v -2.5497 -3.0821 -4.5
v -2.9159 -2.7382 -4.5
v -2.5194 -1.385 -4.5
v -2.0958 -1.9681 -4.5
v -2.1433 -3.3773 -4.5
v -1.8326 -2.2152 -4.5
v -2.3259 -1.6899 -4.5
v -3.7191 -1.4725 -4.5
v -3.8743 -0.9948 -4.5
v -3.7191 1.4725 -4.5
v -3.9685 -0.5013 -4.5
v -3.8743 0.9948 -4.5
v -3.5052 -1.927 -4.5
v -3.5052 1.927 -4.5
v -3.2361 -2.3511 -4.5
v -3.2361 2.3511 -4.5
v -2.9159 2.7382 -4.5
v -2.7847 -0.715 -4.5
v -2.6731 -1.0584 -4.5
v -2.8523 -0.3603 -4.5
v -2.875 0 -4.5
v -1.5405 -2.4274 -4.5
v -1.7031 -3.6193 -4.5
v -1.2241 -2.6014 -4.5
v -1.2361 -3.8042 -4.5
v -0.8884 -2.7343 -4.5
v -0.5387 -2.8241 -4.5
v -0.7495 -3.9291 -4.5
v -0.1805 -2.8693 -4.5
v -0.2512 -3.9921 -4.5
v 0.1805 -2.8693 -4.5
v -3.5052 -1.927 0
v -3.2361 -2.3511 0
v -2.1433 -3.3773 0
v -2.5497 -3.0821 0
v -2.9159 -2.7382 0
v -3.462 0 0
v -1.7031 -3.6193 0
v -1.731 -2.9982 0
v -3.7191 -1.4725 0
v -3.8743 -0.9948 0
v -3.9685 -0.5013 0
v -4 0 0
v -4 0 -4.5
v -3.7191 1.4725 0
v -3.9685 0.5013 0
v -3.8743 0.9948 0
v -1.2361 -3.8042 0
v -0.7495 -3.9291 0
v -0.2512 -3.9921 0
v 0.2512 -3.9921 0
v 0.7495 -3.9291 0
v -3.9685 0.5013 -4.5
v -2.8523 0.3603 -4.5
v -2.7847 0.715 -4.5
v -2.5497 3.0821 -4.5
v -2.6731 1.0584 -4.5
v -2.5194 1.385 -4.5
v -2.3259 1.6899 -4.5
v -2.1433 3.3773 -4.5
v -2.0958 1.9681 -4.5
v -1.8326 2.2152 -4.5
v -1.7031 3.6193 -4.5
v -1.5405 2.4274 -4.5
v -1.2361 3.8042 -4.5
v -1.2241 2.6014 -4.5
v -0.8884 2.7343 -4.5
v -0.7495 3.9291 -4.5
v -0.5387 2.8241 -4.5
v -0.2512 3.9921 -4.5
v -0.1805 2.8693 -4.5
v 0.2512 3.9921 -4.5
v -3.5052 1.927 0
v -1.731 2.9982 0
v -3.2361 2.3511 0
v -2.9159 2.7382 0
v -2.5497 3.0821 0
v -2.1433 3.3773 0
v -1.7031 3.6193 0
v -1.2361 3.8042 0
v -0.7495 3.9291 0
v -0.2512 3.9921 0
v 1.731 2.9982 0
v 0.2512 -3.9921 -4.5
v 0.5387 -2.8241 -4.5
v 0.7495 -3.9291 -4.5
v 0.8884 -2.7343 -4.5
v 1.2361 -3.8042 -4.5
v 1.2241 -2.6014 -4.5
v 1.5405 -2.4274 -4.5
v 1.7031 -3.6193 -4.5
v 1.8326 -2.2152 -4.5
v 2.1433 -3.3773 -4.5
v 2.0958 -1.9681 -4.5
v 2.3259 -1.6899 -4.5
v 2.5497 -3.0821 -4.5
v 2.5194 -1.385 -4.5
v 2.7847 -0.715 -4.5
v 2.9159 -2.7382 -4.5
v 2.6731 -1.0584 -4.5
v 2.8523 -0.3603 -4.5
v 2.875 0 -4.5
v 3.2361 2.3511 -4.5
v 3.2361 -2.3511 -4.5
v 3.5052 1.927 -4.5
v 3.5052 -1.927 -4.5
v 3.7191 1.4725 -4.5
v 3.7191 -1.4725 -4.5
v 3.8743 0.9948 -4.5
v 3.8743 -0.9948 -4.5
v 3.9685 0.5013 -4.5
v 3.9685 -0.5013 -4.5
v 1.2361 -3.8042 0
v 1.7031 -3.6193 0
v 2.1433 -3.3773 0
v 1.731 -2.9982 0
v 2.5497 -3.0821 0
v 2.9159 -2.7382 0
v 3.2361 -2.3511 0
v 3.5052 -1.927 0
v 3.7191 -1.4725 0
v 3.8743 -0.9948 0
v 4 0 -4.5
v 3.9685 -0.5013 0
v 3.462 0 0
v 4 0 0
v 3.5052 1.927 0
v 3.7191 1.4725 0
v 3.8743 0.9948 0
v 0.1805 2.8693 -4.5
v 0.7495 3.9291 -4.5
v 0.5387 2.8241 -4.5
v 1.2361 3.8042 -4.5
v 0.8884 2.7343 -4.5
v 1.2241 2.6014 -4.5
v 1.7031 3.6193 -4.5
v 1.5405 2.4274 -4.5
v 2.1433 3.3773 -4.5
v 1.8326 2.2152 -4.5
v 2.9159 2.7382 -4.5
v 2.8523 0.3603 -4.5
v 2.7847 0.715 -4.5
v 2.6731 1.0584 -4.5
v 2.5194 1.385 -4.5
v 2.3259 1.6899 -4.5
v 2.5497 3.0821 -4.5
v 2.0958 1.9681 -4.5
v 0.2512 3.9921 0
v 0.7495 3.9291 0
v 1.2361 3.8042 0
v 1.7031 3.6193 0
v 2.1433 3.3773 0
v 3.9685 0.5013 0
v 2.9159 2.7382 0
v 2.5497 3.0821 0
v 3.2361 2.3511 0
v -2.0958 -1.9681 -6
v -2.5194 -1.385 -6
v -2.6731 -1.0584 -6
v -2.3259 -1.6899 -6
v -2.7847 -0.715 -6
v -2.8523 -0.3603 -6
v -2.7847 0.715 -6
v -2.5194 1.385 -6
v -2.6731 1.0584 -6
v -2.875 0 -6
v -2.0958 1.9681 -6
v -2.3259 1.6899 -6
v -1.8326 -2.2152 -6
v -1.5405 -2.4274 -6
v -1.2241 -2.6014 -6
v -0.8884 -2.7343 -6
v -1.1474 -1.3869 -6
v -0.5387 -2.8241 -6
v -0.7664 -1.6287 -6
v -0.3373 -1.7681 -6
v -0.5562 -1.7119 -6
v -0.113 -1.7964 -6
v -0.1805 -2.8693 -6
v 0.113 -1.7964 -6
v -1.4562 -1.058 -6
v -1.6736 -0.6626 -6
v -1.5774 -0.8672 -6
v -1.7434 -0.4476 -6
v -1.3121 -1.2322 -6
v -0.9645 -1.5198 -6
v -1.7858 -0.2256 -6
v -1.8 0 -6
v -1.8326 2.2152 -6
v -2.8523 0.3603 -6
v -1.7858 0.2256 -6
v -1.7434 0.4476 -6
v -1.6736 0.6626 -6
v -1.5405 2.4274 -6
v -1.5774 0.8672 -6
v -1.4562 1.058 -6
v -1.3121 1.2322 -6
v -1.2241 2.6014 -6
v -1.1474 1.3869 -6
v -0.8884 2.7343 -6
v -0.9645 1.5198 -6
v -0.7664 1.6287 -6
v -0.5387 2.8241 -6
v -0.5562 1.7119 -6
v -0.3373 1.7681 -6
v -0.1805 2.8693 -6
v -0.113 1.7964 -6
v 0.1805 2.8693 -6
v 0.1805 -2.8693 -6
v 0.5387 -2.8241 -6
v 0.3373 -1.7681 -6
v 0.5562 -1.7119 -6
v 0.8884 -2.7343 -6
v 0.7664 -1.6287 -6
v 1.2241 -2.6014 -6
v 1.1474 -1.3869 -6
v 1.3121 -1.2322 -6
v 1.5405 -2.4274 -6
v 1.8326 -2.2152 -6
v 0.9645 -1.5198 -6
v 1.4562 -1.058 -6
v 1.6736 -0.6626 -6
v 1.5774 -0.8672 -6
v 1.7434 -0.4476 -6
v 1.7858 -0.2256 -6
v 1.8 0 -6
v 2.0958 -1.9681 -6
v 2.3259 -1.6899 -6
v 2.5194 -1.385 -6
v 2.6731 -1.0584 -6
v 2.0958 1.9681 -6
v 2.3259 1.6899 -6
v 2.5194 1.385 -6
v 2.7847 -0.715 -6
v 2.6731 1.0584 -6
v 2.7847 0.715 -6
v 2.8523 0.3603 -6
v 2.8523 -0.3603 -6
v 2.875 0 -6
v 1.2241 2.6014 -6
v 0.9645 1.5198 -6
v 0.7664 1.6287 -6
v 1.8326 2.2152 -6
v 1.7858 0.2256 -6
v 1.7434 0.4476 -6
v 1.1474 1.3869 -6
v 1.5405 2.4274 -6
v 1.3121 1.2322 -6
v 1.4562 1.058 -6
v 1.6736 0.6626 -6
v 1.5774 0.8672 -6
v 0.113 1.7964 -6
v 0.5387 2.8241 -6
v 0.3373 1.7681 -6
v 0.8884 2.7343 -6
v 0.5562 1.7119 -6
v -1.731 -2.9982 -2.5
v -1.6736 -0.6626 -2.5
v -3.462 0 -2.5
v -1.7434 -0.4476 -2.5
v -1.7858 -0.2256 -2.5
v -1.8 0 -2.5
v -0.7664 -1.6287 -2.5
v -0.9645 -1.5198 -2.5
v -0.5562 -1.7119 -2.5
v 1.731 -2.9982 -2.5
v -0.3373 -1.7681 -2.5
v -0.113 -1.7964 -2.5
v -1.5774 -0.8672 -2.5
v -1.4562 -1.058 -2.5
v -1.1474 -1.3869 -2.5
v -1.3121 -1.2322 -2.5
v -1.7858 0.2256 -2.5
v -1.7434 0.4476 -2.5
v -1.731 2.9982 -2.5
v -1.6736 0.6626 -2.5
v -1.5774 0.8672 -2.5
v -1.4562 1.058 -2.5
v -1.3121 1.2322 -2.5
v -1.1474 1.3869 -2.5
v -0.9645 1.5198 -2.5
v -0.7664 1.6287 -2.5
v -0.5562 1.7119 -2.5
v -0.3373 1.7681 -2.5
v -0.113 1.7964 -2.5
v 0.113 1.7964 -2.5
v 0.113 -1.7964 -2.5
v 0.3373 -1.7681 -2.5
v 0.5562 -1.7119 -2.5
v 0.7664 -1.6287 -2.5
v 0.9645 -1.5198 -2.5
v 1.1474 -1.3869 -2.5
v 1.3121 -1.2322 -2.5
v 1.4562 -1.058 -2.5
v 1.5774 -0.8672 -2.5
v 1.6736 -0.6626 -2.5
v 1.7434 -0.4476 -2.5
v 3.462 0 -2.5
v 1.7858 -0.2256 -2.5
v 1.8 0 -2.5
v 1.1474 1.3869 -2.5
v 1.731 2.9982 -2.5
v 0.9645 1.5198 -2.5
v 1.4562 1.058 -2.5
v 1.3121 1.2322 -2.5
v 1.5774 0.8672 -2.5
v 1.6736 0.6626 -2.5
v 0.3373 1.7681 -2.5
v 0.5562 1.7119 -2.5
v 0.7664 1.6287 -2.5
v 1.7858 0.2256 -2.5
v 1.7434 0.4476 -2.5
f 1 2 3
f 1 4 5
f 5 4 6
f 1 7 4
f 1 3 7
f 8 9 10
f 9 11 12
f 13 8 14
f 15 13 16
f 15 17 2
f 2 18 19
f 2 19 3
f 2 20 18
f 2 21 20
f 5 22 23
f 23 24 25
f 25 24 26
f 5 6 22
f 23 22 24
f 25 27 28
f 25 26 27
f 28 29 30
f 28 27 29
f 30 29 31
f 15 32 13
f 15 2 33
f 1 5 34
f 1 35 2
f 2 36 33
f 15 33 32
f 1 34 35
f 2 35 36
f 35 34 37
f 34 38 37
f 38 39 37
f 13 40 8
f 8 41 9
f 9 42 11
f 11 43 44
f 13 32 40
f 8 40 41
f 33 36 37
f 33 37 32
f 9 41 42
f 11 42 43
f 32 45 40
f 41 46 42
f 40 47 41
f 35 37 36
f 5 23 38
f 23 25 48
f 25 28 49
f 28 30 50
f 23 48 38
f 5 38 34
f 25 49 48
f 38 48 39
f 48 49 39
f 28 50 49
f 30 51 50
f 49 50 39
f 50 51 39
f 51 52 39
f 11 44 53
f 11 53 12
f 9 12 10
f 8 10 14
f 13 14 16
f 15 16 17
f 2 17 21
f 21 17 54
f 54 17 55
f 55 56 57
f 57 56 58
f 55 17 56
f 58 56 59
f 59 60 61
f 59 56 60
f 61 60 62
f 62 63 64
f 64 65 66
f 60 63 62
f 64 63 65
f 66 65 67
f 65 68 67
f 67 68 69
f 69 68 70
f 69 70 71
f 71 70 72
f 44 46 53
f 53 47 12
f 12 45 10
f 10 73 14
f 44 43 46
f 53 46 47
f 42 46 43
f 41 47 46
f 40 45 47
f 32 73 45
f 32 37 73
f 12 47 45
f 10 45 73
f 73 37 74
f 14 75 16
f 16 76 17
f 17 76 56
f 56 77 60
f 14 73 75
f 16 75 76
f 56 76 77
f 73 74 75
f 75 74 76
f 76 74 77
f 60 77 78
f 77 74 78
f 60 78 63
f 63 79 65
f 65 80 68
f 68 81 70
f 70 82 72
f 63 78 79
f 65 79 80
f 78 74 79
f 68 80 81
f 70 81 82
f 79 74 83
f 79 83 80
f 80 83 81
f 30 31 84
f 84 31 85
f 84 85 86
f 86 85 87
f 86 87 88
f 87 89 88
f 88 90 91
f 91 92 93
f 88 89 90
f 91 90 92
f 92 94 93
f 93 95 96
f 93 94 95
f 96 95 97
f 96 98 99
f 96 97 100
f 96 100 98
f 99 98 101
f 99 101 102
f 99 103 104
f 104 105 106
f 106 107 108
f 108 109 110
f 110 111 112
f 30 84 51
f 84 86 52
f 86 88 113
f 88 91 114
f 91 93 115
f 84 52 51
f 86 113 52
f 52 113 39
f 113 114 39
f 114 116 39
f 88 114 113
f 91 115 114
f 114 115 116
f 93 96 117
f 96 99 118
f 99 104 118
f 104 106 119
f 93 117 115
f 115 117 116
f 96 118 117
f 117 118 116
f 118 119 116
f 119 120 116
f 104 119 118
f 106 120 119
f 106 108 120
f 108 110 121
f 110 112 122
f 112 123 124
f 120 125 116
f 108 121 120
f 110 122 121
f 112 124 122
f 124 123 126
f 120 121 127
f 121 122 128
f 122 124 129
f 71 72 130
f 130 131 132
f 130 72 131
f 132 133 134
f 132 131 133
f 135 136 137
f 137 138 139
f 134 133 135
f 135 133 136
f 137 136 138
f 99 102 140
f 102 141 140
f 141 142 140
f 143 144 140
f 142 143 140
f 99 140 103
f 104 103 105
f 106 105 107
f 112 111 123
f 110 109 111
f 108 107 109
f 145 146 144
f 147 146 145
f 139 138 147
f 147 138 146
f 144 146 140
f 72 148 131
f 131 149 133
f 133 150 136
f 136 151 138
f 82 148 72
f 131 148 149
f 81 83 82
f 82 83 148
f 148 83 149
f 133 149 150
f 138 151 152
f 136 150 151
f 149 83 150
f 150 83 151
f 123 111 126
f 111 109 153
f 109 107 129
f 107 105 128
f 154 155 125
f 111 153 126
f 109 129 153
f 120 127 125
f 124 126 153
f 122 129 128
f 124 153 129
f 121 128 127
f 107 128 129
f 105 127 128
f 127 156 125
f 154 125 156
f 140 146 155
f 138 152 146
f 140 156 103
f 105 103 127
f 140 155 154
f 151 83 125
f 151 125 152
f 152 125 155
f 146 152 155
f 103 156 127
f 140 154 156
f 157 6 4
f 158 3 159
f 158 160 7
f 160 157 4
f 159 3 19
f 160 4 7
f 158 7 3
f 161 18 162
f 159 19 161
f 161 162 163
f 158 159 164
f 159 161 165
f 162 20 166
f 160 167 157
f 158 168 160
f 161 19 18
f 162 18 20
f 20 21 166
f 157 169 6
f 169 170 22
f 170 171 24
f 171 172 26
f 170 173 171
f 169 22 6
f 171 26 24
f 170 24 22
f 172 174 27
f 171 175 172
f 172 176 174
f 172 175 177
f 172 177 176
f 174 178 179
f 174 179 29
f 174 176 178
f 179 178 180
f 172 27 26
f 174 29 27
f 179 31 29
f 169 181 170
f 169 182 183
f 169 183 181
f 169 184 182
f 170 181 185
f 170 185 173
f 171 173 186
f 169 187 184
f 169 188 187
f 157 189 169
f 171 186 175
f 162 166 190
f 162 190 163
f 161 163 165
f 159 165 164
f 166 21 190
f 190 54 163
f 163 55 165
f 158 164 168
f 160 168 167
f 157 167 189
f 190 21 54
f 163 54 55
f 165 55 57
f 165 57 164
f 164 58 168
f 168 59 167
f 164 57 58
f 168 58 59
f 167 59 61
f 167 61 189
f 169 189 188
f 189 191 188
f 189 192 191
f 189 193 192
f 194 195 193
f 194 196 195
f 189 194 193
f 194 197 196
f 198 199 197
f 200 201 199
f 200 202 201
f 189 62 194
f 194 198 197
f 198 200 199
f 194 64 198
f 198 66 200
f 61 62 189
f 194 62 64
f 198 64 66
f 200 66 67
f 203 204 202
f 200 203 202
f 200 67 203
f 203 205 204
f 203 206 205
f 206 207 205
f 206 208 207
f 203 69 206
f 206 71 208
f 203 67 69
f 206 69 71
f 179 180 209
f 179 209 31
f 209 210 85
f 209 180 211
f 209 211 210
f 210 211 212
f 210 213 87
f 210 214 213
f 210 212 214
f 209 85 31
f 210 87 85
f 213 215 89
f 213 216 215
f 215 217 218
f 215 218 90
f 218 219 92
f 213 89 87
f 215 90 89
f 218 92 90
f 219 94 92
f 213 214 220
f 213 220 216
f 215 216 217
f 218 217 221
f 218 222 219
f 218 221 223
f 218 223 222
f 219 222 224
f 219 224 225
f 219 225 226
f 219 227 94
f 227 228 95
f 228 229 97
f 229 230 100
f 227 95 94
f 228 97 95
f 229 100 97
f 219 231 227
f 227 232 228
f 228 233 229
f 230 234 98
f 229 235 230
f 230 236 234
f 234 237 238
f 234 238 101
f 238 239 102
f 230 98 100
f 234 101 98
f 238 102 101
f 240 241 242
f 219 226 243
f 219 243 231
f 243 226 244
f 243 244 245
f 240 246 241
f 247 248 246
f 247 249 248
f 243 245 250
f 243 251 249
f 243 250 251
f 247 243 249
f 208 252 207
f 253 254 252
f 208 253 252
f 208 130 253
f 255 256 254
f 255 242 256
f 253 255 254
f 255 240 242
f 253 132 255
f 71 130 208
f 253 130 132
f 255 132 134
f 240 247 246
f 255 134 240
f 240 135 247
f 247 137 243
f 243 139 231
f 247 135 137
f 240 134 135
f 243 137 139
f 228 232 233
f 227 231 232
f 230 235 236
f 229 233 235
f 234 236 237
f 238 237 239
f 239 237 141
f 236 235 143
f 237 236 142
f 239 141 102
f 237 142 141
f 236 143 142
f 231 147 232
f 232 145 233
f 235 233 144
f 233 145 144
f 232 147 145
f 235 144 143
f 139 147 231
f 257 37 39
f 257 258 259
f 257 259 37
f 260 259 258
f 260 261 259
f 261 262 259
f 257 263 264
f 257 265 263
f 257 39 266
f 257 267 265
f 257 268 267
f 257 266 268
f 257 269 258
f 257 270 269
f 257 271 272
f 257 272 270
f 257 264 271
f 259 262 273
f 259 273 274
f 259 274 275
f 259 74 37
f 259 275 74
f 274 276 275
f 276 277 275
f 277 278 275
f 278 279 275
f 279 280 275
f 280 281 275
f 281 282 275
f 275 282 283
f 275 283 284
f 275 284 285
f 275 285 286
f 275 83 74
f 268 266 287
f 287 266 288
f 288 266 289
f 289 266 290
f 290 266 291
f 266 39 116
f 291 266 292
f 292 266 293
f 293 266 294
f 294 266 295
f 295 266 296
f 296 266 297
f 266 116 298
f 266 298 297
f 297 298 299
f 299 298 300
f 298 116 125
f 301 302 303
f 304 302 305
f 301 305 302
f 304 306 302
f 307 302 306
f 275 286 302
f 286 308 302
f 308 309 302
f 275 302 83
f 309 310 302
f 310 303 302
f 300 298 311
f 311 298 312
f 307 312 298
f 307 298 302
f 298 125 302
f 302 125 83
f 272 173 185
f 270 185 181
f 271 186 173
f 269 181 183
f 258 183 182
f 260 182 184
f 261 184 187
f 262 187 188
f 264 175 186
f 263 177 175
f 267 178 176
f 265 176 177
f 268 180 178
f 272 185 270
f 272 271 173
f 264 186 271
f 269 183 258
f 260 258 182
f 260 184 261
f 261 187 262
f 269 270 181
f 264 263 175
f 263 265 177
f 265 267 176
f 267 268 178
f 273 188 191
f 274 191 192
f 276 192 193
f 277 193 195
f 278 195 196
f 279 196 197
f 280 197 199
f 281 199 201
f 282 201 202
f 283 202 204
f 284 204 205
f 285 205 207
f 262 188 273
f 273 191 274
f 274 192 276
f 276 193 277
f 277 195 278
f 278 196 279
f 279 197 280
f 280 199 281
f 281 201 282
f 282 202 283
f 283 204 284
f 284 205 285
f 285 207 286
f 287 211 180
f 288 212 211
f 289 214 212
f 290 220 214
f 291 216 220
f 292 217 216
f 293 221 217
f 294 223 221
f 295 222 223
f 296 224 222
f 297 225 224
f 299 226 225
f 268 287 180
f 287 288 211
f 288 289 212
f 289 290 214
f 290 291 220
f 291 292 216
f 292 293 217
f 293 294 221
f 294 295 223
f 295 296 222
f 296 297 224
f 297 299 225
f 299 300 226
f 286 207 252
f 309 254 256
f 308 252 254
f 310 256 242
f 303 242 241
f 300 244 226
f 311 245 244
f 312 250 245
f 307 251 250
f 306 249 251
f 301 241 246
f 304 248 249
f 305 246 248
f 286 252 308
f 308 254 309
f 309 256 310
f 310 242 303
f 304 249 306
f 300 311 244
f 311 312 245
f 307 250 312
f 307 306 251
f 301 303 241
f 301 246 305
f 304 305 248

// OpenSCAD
$fn = 50;

difference() {
	union() {
		translate(v = [0, 0, -4.5]) {
			cylinder(h = 4.5, r = 4.0);
		}
		#translate(v = [0, 0, -6.0]) {
			cylinder(h = 6, r = 2.875);
		}
	}
	union() {
		translate(v = [0, 0, 0]) {
			rotate(a = [0, 0, 0]) {
				difference() {
					union() {
						translate(v = [0, 0, -2.5]) {
							linear_extrude(height = 2.5) {
								polygon(points = [[3.4619999999999997, 0.0], [1.7310000000000003, 2.9981799479017264], [-1.7309999999999992, 2.9981799479017264], [-3.4619999999999997, 4.2397272186481365e-16], [-1.7310000000000014, -2.998179947901726], [1.7309999999999977, -2.9981799479017277]]);
							}
						}
					}
					union();
				}
			}
		}
		#translate(v = [0, 0, -100.0]) {
			cylinder(h = 200, r = 1.8);
		}
	}
}
